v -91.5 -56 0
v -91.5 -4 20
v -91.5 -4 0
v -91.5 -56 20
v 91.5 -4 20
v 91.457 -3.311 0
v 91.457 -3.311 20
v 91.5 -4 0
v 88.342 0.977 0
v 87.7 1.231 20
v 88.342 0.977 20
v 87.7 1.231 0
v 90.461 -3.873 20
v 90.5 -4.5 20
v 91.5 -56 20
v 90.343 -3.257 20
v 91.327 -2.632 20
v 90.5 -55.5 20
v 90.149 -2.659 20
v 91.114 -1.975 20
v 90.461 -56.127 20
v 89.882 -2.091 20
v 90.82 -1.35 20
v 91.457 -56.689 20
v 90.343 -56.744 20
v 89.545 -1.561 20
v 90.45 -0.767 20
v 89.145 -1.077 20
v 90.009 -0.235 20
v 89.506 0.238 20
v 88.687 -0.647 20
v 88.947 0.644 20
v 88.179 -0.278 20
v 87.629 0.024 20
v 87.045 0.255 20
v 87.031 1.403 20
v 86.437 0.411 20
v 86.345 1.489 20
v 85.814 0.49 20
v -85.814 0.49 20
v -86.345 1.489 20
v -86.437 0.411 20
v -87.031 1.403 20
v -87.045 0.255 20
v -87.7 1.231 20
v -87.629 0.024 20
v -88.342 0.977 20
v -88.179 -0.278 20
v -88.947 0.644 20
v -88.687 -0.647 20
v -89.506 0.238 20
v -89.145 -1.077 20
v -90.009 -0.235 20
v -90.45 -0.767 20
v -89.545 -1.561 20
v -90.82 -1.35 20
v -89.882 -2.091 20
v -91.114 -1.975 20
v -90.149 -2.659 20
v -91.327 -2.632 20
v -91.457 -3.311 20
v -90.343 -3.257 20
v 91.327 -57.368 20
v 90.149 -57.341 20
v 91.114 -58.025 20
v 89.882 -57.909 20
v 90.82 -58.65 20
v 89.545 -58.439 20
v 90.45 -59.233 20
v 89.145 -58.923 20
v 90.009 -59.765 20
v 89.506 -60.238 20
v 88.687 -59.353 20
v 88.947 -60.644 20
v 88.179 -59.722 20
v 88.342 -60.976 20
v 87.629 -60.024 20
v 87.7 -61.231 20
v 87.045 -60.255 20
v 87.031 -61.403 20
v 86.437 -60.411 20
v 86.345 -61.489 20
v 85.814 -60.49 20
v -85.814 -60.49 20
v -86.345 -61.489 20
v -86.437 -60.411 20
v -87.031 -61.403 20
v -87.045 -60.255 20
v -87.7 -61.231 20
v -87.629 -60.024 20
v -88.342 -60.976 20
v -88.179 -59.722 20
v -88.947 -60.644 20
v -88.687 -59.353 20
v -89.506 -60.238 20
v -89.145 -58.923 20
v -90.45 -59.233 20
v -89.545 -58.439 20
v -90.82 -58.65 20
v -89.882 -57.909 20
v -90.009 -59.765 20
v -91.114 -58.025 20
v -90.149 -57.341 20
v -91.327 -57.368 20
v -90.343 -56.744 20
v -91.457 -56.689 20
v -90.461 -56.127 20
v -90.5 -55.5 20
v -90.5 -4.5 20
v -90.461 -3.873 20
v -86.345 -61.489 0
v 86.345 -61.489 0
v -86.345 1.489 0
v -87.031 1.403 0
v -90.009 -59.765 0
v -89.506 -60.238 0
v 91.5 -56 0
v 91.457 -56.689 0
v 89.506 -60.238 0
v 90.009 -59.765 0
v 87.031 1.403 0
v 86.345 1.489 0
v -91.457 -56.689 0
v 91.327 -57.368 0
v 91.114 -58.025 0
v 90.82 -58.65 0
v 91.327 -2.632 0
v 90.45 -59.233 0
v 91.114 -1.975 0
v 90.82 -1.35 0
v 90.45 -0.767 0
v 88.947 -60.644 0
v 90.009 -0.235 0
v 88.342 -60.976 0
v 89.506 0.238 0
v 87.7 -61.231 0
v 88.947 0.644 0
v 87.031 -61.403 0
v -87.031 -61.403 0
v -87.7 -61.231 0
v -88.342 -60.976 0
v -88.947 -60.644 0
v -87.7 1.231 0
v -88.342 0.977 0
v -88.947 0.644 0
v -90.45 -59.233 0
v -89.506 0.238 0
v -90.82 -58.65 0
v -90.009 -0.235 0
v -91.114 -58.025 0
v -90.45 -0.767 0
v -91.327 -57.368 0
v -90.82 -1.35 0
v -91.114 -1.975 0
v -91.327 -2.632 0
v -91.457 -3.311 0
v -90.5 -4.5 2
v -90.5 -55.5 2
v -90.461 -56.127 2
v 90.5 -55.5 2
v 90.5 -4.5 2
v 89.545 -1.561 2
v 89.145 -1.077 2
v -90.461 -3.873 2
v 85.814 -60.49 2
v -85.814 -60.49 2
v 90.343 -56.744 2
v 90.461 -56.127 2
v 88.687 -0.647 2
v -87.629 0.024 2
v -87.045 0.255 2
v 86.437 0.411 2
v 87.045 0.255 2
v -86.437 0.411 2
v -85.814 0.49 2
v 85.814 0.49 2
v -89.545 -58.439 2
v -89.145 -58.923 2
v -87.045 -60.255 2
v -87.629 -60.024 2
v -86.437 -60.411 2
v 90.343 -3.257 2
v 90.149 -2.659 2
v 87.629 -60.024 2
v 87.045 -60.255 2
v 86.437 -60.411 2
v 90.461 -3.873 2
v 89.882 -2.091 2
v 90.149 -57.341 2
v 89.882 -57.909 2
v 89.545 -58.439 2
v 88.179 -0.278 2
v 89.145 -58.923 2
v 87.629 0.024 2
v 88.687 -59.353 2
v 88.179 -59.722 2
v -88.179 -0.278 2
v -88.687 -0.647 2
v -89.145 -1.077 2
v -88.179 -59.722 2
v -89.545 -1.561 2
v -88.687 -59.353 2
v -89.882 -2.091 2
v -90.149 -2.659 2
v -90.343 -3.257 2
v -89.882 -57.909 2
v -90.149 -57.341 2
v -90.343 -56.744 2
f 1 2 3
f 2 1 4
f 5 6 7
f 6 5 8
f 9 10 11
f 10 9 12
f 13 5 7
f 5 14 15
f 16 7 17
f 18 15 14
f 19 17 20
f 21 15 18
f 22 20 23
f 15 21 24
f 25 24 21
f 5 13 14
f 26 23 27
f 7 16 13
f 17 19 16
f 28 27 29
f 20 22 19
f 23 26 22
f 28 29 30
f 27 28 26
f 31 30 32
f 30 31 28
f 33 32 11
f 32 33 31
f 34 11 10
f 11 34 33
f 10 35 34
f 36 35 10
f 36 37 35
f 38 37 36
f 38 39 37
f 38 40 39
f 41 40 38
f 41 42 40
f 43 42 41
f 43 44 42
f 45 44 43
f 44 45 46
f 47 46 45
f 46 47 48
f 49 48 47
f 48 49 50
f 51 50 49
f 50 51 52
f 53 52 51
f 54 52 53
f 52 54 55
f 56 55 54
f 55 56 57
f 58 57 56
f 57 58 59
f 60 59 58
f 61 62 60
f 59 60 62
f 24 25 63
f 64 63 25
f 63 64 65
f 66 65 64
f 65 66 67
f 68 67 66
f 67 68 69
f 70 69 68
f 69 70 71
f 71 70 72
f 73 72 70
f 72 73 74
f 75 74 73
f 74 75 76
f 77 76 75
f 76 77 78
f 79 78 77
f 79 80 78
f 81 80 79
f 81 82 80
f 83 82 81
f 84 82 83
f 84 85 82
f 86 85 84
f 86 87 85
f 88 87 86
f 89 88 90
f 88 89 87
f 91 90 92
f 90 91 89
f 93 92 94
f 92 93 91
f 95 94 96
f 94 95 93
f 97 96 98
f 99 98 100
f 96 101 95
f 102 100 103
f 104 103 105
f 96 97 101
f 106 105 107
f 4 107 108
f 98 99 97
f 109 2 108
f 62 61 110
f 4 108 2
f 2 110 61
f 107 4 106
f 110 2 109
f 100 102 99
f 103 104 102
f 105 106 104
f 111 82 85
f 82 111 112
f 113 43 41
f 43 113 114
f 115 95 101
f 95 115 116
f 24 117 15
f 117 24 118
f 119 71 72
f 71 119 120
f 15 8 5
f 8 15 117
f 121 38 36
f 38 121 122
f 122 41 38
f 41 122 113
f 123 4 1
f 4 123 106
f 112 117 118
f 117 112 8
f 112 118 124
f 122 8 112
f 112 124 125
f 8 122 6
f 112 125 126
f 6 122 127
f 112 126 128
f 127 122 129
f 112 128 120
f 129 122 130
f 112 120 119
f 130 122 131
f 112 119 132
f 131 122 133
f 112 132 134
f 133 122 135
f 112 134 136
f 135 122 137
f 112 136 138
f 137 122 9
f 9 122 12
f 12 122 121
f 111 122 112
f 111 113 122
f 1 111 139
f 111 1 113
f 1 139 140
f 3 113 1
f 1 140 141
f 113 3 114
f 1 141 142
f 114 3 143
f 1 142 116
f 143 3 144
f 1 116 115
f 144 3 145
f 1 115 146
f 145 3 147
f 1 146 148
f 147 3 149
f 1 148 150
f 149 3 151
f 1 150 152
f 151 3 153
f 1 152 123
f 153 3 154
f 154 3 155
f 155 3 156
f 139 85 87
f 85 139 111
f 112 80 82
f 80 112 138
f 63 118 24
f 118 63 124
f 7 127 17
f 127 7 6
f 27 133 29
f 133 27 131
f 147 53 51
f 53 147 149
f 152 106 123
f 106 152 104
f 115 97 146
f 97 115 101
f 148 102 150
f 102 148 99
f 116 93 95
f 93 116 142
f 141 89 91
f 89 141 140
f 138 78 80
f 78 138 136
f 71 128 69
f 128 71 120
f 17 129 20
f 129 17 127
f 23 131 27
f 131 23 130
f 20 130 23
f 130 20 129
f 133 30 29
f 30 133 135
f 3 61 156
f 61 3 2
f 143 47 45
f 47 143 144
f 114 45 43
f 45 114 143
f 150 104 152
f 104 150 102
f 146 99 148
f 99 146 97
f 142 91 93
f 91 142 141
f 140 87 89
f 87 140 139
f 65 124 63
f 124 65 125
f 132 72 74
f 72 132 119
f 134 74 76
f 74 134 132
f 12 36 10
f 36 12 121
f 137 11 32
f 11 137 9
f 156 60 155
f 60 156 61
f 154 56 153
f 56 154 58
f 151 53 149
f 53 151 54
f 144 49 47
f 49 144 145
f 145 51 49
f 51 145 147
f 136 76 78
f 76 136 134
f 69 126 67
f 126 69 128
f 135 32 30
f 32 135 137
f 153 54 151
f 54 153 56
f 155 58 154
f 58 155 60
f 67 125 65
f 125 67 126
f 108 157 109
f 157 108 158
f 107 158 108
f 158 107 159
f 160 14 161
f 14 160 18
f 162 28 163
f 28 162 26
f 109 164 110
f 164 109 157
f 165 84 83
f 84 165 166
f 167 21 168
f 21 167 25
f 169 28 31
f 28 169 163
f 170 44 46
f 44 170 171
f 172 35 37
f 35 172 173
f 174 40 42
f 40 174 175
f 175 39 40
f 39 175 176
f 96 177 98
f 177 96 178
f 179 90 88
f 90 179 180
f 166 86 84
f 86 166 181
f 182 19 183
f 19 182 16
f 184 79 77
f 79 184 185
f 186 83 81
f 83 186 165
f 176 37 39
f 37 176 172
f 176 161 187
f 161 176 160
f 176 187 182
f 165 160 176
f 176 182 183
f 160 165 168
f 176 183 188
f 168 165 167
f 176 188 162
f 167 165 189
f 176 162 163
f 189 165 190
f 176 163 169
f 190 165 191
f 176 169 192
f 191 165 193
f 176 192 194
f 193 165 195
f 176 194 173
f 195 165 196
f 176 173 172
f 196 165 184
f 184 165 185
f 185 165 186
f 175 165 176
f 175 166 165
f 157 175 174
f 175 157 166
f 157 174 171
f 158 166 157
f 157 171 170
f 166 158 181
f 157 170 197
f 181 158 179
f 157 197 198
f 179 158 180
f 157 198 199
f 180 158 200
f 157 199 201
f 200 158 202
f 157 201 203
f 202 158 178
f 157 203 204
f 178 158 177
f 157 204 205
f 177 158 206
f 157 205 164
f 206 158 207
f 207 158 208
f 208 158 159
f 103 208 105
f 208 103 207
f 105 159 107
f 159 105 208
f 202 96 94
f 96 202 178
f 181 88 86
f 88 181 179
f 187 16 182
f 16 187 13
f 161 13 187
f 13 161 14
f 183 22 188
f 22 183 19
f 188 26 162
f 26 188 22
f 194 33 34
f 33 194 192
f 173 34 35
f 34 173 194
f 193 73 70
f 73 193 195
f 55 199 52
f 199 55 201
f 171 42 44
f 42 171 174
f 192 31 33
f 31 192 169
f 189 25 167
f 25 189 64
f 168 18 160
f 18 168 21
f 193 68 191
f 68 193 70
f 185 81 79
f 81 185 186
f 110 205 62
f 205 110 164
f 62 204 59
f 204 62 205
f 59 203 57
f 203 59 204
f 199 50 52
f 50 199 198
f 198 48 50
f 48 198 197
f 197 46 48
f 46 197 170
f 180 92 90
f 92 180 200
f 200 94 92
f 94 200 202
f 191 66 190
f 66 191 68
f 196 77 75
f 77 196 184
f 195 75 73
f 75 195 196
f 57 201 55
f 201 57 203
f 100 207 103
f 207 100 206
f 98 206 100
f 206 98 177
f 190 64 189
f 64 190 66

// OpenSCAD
$fn = 50;


difference() {
	union() {
		translate(v = [0, -30.0000000000, 0]) {
			hull() {
				translate(v = [-86.0000000000, 26.0000000000, 0]) {
					cylinder(h = 20, r = 5.5000000000);
				}
				translate(v = [86.0000000000, 26.0000000000, 0]) {
					cylinder(h = 20, r = 5.5000000000);
				}
				translate(v = [-86.0000000000, -26.0000000000, 0]) {
					cylinder(h = 20, r = 5.5000000000);
				}
				translate(v = [86.0000000000, -26.0000000000, 0]) {
					cylinder(h = 20, r = 5.5000000000);
				}
			}
		}
	}
	union() {
		translate(v = [0, -30.0000000000, 2]) {
			hull() {
				translate(v = [-85.5000000000, 25.5000000000, 0]) {
					cylinder(h = 40, r = 5);
				}
				translate(v = [85.5000000000, 25.5000000000, 0]) {
					cylinder(h = 40, r = 5);
				}
				translate(v = [-85.5000000000, -25.5000000000, 0]) {
					cylinder(h = 40, r = 5);
				}
				translate(v = [85.5000000000, -25.5000000000, 0]) {
					cylinder(h = 40, r = 5);
				}
			}
		}
	}
}
